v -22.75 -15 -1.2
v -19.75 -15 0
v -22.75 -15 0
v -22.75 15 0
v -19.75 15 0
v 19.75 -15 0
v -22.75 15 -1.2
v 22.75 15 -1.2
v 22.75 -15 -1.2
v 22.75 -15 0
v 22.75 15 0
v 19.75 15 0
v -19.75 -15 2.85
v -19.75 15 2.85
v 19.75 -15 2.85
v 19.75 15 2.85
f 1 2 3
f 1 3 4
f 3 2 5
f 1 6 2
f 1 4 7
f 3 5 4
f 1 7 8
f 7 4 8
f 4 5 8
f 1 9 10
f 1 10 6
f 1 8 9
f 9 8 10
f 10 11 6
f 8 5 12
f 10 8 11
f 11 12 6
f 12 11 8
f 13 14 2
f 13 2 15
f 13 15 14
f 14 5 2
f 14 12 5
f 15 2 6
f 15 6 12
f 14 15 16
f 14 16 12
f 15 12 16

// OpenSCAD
translate([0, 0, -1.2 / 2])
  cube([39.5 + 2 * 3, 30, 1.2], center=true);
translate([0, 0, 2.85 / 2])
  cube([39.5, 30, 2.85], center=true);
